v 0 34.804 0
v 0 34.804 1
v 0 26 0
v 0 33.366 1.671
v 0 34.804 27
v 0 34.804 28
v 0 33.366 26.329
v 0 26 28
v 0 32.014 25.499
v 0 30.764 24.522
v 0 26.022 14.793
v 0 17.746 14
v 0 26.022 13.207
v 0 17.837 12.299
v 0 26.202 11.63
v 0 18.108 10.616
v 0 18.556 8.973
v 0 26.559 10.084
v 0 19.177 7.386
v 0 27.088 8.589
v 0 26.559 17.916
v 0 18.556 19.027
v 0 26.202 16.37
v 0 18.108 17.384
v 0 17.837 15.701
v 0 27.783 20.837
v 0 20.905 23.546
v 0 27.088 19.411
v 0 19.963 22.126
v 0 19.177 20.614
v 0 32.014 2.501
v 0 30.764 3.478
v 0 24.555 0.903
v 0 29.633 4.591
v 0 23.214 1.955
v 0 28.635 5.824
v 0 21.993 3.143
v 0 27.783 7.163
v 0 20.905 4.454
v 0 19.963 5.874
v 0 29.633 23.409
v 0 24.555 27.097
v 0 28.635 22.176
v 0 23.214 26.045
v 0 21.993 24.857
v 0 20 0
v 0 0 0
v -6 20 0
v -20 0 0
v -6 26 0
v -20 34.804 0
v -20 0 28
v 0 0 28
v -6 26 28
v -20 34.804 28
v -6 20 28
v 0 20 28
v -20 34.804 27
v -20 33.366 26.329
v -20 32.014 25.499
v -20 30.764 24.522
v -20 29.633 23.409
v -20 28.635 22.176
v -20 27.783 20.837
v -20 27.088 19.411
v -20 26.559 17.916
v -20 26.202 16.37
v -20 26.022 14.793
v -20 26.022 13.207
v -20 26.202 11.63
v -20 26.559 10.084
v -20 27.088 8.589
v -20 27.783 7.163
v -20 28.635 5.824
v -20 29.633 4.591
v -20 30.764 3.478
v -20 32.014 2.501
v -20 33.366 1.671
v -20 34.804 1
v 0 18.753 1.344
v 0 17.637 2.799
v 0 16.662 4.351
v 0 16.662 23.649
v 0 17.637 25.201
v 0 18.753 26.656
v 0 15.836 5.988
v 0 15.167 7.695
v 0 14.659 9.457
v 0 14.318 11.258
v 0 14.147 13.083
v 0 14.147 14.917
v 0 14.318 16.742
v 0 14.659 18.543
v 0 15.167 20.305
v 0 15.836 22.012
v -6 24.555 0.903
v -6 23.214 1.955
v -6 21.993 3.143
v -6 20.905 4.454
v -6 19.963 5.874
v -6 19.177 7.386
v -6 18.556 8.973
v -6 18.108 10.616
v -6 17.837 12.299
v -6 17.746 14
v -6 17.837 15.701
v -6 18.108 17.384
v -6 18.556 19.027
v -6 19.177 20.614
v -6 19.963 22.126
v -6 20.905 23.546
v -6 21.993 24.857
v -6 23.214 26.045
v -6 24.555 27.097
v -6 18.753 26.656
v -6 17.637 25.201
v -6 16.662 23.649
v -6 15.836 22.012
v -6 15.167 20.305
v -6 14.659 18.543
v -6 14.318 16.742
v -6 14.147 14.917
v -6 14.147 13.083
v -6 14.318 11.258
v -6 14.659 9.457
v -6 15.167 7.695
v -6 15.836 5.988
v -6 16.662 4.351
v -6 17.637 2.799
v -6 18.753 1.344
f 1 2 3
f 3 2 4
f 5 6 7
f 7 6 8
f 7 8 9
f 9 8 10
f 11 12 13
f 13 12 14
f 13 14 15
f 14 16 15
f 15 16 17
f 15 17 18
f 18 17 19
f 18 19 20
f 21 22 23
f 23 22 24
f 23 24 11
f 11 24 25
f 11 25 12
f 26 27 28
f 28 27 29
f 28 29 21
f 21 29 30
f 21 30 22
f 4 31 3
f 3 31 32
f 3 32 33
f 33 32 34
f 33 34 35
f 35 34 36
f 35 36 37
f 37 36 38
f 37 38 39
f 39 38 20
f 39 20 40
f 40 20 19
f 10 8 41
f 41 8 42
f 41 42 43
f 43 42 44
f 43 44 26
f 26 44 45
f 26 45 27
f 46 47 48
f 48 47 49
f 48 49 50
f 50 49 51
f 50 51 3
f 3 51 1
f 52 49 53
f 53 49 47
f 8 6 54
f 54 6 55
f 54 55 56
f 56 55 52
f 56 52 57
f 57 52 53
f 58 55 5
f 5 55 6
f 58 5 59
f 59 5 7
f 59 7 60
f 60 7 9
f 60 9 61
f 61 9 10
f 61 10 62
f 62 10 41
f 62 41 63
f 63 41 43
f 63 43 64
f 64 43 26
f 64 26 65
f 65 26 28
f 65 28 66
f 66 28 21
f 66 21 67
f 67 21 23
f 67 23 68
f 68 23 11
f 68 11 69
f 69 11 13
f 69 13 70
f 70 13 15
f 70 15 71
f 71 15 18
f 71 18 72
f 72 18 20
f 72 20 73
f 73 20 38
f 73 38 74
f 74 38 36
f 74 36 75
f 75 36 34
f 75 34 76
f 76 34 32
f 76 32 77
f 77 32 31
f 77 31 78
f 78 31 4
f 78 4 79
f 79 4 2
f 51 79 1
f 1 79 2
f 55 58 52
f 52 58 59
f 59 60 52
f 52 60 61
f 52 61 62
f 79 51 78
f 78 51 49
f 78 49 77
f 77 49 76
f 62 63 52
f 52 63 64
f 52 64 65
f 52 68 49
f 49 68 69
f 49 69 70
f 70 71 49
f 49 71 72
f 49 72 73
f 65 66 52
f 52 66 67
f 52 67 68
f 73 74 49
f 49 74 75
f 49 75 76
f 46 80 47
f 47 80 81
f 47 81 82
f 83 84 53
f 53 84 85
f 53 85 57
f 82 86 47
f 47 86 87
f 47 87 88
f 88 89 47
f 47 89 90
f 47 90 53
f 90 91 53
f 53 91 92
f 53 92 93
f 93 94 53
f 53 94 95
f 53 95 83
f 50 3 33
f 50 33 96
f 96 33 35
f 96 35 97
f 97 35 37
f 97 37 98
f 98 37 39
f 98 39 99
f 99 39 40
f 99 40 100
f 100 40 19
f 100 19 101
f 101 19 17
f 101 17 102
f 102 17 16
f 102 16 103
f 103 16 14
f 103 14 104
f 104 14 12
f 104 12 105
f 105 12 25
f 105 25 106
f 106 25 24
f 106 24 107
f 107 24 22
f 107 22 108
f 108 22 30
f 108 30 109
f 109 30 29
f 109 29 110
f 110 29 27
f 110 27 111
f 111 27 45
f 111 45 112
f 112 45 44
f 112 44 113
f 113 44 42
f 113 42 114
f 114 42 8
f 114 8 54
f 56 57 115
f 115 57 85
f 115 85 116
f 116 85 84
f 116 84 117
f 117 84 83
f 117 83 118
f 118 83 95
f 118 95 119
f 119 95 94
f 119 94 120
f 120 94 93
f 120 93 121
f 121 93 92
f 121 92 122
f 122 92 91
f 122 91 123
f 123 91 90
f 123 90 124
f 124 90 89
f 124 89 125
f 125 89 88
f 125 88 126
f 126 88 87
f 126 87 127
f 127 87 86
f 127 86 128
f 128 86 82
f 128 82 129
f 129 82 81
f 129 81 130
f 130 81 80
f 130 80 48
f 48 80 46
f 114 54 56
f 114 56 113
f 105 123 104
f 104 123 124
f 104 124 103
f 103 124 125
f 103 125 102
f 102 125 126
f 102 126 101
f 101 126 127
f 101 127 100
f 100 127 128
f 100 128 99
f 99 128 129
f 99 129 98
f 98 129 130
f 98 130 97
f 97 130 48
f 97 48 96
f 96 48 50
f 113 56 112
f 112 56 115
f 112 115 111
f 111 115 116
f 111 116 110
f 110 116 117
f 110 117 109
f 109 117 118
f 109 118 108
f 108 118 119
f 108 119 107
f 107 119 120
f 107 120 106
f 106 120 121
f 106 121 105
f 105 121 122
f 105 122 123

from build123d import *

# Parameters (mm, degrees)
BOSS_EXTRUDE2_DEPTH = 20
CUT_EXTRUDE1_DEPTH  = 6


with BuildPart() as part:
    # Sketch1 → Boss-Extrude2 (new body)
    with BuildSketch(Plane(origin=(0, 0, 0), x_dir=(0, 0, -1), z_dir=(1, 0, 0))):
        with BuildLine():
            Line((0, 0), (-28, 0))
            Line((-28, 0), (-28, 34.803847577))
            Line((-28, 34.803847577), (-27, 34.803847577))
            ThreePointArc((-27, 34.803847577), (-14, 26), (-1, 34.803847577))
            Line((-1, 34.803847577), (0, 34.803847577))
            Line((0, 34.803847577), (0, 0))
        make_face()
    extrude(amount=-BOSS_EXTRUDE2_DEPTH)

    # Sketch3 → Cut-Extrude1 (cut)
    with BuildSketch(Plane(origin=(0, 0, 0), x_dir=(0, 0, -1), z_dir=(1, 0, 0))):
        with BuildLine():
            Line((-28, 20), (-28, 26))
            ThreePointArc((-28, 26), (-14, 17.745966692), (0, 26))
            Line((0, 26), (0, 20))
            ThreePointArc((0, 20), (-14, 14.125783199), (-28, 20))
        make_face()
    extrude(amount=-CUT_EXTRUDE1_DEPTH, mode=Mode.SUBTRACT)


solid = part.part
